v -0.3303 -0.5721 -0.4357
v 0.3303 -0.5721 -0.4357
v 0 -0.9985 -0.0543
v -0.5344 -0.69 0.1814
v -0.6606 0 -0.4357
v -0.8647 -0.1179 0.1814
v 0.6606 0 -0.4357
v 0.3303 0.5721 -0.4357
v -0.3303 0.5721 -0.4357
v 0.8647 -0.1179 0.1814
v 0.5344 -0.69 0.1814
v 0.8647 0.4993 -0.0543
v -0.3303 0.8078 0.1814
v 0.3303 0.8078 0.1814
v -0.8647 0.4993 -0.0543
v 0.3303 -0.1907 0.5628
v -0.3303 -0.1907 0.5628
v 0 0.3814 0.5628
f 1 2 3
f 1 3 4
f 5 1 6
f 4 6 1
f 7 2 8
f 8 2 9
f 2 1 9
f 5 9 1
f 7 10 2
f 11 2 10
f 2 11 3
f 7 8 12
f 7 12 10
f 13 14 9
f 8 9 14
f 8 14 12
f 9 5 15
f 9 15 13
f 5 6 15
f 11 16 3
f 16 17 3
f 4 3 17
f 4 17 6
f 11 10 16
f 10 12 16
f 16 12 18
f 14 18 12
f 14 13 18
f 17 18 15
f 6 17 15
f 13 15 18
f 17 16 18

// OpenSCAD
polyhedron( points = [[-0.330304370044045, -0.572103950815358, -0.435695423651195], [0.330304369875139, -0.572103950807944, -0.435695423834653], [0.660608739803655, 1.07078296019036e-11, -0.435695423996079], [0.330304369784069, 0.572103950731964, -0.435695423974048], [-0.330304370106764, 0.572103950694388, -0.435695423790584], [-0.660608740001183, -2.53098788126886e-11, -0.435695423629164], [-0.53444369713428, -0.689963846327349, 0.181427001258101], [3.81404180287862e-11, -0.998525058758189, -0.0542927898707952], [0.534443697278616, -0.689963846341856, 0.181427001247019], [0.864748067077363, -0.117859895496055, 0.181427001132083], [0.86474806701047, 0.499262529419521, -0.0542927900023157], [0.330304369969765, 0.807823742243281, 0.181427000940445], [-0.330304369730217, 0.807823741794477, 0.181427001314822], [-0.86474806695671, 0.499262529398435, -0.0542927898612566], [-0.864748067066264, -0.117859895564036, 0.181427001258101], [-0.33030436990167, -0.190701316968386, 0.562829635153173], [0.330304370013668, -0.190701316968386, 0.562829635153173], [9.02465674446467e-11, 0.381402633780097, 0.562829635153173]], faces = [[0, 1, 7], [0, 7, 6], [0, 6, 14, 5], [0, 5, 4, 3, 2, 1], [1, 2, 9, 8], [1, 8, 7], [2, 3, 10], [2, 10, 9], [3, 4, 12, 11], [3, 11, 10], [4, 5, 13], [4, 13, 12], [5, 14, 13], [6, 7, 8, 16, 15], [6, 15, 14], [8, 9, 16], [9, 10, 11, 17, 16], [11, 12, 17], [12, 13, 14, 15, 17], [15, 16, 17]]);
